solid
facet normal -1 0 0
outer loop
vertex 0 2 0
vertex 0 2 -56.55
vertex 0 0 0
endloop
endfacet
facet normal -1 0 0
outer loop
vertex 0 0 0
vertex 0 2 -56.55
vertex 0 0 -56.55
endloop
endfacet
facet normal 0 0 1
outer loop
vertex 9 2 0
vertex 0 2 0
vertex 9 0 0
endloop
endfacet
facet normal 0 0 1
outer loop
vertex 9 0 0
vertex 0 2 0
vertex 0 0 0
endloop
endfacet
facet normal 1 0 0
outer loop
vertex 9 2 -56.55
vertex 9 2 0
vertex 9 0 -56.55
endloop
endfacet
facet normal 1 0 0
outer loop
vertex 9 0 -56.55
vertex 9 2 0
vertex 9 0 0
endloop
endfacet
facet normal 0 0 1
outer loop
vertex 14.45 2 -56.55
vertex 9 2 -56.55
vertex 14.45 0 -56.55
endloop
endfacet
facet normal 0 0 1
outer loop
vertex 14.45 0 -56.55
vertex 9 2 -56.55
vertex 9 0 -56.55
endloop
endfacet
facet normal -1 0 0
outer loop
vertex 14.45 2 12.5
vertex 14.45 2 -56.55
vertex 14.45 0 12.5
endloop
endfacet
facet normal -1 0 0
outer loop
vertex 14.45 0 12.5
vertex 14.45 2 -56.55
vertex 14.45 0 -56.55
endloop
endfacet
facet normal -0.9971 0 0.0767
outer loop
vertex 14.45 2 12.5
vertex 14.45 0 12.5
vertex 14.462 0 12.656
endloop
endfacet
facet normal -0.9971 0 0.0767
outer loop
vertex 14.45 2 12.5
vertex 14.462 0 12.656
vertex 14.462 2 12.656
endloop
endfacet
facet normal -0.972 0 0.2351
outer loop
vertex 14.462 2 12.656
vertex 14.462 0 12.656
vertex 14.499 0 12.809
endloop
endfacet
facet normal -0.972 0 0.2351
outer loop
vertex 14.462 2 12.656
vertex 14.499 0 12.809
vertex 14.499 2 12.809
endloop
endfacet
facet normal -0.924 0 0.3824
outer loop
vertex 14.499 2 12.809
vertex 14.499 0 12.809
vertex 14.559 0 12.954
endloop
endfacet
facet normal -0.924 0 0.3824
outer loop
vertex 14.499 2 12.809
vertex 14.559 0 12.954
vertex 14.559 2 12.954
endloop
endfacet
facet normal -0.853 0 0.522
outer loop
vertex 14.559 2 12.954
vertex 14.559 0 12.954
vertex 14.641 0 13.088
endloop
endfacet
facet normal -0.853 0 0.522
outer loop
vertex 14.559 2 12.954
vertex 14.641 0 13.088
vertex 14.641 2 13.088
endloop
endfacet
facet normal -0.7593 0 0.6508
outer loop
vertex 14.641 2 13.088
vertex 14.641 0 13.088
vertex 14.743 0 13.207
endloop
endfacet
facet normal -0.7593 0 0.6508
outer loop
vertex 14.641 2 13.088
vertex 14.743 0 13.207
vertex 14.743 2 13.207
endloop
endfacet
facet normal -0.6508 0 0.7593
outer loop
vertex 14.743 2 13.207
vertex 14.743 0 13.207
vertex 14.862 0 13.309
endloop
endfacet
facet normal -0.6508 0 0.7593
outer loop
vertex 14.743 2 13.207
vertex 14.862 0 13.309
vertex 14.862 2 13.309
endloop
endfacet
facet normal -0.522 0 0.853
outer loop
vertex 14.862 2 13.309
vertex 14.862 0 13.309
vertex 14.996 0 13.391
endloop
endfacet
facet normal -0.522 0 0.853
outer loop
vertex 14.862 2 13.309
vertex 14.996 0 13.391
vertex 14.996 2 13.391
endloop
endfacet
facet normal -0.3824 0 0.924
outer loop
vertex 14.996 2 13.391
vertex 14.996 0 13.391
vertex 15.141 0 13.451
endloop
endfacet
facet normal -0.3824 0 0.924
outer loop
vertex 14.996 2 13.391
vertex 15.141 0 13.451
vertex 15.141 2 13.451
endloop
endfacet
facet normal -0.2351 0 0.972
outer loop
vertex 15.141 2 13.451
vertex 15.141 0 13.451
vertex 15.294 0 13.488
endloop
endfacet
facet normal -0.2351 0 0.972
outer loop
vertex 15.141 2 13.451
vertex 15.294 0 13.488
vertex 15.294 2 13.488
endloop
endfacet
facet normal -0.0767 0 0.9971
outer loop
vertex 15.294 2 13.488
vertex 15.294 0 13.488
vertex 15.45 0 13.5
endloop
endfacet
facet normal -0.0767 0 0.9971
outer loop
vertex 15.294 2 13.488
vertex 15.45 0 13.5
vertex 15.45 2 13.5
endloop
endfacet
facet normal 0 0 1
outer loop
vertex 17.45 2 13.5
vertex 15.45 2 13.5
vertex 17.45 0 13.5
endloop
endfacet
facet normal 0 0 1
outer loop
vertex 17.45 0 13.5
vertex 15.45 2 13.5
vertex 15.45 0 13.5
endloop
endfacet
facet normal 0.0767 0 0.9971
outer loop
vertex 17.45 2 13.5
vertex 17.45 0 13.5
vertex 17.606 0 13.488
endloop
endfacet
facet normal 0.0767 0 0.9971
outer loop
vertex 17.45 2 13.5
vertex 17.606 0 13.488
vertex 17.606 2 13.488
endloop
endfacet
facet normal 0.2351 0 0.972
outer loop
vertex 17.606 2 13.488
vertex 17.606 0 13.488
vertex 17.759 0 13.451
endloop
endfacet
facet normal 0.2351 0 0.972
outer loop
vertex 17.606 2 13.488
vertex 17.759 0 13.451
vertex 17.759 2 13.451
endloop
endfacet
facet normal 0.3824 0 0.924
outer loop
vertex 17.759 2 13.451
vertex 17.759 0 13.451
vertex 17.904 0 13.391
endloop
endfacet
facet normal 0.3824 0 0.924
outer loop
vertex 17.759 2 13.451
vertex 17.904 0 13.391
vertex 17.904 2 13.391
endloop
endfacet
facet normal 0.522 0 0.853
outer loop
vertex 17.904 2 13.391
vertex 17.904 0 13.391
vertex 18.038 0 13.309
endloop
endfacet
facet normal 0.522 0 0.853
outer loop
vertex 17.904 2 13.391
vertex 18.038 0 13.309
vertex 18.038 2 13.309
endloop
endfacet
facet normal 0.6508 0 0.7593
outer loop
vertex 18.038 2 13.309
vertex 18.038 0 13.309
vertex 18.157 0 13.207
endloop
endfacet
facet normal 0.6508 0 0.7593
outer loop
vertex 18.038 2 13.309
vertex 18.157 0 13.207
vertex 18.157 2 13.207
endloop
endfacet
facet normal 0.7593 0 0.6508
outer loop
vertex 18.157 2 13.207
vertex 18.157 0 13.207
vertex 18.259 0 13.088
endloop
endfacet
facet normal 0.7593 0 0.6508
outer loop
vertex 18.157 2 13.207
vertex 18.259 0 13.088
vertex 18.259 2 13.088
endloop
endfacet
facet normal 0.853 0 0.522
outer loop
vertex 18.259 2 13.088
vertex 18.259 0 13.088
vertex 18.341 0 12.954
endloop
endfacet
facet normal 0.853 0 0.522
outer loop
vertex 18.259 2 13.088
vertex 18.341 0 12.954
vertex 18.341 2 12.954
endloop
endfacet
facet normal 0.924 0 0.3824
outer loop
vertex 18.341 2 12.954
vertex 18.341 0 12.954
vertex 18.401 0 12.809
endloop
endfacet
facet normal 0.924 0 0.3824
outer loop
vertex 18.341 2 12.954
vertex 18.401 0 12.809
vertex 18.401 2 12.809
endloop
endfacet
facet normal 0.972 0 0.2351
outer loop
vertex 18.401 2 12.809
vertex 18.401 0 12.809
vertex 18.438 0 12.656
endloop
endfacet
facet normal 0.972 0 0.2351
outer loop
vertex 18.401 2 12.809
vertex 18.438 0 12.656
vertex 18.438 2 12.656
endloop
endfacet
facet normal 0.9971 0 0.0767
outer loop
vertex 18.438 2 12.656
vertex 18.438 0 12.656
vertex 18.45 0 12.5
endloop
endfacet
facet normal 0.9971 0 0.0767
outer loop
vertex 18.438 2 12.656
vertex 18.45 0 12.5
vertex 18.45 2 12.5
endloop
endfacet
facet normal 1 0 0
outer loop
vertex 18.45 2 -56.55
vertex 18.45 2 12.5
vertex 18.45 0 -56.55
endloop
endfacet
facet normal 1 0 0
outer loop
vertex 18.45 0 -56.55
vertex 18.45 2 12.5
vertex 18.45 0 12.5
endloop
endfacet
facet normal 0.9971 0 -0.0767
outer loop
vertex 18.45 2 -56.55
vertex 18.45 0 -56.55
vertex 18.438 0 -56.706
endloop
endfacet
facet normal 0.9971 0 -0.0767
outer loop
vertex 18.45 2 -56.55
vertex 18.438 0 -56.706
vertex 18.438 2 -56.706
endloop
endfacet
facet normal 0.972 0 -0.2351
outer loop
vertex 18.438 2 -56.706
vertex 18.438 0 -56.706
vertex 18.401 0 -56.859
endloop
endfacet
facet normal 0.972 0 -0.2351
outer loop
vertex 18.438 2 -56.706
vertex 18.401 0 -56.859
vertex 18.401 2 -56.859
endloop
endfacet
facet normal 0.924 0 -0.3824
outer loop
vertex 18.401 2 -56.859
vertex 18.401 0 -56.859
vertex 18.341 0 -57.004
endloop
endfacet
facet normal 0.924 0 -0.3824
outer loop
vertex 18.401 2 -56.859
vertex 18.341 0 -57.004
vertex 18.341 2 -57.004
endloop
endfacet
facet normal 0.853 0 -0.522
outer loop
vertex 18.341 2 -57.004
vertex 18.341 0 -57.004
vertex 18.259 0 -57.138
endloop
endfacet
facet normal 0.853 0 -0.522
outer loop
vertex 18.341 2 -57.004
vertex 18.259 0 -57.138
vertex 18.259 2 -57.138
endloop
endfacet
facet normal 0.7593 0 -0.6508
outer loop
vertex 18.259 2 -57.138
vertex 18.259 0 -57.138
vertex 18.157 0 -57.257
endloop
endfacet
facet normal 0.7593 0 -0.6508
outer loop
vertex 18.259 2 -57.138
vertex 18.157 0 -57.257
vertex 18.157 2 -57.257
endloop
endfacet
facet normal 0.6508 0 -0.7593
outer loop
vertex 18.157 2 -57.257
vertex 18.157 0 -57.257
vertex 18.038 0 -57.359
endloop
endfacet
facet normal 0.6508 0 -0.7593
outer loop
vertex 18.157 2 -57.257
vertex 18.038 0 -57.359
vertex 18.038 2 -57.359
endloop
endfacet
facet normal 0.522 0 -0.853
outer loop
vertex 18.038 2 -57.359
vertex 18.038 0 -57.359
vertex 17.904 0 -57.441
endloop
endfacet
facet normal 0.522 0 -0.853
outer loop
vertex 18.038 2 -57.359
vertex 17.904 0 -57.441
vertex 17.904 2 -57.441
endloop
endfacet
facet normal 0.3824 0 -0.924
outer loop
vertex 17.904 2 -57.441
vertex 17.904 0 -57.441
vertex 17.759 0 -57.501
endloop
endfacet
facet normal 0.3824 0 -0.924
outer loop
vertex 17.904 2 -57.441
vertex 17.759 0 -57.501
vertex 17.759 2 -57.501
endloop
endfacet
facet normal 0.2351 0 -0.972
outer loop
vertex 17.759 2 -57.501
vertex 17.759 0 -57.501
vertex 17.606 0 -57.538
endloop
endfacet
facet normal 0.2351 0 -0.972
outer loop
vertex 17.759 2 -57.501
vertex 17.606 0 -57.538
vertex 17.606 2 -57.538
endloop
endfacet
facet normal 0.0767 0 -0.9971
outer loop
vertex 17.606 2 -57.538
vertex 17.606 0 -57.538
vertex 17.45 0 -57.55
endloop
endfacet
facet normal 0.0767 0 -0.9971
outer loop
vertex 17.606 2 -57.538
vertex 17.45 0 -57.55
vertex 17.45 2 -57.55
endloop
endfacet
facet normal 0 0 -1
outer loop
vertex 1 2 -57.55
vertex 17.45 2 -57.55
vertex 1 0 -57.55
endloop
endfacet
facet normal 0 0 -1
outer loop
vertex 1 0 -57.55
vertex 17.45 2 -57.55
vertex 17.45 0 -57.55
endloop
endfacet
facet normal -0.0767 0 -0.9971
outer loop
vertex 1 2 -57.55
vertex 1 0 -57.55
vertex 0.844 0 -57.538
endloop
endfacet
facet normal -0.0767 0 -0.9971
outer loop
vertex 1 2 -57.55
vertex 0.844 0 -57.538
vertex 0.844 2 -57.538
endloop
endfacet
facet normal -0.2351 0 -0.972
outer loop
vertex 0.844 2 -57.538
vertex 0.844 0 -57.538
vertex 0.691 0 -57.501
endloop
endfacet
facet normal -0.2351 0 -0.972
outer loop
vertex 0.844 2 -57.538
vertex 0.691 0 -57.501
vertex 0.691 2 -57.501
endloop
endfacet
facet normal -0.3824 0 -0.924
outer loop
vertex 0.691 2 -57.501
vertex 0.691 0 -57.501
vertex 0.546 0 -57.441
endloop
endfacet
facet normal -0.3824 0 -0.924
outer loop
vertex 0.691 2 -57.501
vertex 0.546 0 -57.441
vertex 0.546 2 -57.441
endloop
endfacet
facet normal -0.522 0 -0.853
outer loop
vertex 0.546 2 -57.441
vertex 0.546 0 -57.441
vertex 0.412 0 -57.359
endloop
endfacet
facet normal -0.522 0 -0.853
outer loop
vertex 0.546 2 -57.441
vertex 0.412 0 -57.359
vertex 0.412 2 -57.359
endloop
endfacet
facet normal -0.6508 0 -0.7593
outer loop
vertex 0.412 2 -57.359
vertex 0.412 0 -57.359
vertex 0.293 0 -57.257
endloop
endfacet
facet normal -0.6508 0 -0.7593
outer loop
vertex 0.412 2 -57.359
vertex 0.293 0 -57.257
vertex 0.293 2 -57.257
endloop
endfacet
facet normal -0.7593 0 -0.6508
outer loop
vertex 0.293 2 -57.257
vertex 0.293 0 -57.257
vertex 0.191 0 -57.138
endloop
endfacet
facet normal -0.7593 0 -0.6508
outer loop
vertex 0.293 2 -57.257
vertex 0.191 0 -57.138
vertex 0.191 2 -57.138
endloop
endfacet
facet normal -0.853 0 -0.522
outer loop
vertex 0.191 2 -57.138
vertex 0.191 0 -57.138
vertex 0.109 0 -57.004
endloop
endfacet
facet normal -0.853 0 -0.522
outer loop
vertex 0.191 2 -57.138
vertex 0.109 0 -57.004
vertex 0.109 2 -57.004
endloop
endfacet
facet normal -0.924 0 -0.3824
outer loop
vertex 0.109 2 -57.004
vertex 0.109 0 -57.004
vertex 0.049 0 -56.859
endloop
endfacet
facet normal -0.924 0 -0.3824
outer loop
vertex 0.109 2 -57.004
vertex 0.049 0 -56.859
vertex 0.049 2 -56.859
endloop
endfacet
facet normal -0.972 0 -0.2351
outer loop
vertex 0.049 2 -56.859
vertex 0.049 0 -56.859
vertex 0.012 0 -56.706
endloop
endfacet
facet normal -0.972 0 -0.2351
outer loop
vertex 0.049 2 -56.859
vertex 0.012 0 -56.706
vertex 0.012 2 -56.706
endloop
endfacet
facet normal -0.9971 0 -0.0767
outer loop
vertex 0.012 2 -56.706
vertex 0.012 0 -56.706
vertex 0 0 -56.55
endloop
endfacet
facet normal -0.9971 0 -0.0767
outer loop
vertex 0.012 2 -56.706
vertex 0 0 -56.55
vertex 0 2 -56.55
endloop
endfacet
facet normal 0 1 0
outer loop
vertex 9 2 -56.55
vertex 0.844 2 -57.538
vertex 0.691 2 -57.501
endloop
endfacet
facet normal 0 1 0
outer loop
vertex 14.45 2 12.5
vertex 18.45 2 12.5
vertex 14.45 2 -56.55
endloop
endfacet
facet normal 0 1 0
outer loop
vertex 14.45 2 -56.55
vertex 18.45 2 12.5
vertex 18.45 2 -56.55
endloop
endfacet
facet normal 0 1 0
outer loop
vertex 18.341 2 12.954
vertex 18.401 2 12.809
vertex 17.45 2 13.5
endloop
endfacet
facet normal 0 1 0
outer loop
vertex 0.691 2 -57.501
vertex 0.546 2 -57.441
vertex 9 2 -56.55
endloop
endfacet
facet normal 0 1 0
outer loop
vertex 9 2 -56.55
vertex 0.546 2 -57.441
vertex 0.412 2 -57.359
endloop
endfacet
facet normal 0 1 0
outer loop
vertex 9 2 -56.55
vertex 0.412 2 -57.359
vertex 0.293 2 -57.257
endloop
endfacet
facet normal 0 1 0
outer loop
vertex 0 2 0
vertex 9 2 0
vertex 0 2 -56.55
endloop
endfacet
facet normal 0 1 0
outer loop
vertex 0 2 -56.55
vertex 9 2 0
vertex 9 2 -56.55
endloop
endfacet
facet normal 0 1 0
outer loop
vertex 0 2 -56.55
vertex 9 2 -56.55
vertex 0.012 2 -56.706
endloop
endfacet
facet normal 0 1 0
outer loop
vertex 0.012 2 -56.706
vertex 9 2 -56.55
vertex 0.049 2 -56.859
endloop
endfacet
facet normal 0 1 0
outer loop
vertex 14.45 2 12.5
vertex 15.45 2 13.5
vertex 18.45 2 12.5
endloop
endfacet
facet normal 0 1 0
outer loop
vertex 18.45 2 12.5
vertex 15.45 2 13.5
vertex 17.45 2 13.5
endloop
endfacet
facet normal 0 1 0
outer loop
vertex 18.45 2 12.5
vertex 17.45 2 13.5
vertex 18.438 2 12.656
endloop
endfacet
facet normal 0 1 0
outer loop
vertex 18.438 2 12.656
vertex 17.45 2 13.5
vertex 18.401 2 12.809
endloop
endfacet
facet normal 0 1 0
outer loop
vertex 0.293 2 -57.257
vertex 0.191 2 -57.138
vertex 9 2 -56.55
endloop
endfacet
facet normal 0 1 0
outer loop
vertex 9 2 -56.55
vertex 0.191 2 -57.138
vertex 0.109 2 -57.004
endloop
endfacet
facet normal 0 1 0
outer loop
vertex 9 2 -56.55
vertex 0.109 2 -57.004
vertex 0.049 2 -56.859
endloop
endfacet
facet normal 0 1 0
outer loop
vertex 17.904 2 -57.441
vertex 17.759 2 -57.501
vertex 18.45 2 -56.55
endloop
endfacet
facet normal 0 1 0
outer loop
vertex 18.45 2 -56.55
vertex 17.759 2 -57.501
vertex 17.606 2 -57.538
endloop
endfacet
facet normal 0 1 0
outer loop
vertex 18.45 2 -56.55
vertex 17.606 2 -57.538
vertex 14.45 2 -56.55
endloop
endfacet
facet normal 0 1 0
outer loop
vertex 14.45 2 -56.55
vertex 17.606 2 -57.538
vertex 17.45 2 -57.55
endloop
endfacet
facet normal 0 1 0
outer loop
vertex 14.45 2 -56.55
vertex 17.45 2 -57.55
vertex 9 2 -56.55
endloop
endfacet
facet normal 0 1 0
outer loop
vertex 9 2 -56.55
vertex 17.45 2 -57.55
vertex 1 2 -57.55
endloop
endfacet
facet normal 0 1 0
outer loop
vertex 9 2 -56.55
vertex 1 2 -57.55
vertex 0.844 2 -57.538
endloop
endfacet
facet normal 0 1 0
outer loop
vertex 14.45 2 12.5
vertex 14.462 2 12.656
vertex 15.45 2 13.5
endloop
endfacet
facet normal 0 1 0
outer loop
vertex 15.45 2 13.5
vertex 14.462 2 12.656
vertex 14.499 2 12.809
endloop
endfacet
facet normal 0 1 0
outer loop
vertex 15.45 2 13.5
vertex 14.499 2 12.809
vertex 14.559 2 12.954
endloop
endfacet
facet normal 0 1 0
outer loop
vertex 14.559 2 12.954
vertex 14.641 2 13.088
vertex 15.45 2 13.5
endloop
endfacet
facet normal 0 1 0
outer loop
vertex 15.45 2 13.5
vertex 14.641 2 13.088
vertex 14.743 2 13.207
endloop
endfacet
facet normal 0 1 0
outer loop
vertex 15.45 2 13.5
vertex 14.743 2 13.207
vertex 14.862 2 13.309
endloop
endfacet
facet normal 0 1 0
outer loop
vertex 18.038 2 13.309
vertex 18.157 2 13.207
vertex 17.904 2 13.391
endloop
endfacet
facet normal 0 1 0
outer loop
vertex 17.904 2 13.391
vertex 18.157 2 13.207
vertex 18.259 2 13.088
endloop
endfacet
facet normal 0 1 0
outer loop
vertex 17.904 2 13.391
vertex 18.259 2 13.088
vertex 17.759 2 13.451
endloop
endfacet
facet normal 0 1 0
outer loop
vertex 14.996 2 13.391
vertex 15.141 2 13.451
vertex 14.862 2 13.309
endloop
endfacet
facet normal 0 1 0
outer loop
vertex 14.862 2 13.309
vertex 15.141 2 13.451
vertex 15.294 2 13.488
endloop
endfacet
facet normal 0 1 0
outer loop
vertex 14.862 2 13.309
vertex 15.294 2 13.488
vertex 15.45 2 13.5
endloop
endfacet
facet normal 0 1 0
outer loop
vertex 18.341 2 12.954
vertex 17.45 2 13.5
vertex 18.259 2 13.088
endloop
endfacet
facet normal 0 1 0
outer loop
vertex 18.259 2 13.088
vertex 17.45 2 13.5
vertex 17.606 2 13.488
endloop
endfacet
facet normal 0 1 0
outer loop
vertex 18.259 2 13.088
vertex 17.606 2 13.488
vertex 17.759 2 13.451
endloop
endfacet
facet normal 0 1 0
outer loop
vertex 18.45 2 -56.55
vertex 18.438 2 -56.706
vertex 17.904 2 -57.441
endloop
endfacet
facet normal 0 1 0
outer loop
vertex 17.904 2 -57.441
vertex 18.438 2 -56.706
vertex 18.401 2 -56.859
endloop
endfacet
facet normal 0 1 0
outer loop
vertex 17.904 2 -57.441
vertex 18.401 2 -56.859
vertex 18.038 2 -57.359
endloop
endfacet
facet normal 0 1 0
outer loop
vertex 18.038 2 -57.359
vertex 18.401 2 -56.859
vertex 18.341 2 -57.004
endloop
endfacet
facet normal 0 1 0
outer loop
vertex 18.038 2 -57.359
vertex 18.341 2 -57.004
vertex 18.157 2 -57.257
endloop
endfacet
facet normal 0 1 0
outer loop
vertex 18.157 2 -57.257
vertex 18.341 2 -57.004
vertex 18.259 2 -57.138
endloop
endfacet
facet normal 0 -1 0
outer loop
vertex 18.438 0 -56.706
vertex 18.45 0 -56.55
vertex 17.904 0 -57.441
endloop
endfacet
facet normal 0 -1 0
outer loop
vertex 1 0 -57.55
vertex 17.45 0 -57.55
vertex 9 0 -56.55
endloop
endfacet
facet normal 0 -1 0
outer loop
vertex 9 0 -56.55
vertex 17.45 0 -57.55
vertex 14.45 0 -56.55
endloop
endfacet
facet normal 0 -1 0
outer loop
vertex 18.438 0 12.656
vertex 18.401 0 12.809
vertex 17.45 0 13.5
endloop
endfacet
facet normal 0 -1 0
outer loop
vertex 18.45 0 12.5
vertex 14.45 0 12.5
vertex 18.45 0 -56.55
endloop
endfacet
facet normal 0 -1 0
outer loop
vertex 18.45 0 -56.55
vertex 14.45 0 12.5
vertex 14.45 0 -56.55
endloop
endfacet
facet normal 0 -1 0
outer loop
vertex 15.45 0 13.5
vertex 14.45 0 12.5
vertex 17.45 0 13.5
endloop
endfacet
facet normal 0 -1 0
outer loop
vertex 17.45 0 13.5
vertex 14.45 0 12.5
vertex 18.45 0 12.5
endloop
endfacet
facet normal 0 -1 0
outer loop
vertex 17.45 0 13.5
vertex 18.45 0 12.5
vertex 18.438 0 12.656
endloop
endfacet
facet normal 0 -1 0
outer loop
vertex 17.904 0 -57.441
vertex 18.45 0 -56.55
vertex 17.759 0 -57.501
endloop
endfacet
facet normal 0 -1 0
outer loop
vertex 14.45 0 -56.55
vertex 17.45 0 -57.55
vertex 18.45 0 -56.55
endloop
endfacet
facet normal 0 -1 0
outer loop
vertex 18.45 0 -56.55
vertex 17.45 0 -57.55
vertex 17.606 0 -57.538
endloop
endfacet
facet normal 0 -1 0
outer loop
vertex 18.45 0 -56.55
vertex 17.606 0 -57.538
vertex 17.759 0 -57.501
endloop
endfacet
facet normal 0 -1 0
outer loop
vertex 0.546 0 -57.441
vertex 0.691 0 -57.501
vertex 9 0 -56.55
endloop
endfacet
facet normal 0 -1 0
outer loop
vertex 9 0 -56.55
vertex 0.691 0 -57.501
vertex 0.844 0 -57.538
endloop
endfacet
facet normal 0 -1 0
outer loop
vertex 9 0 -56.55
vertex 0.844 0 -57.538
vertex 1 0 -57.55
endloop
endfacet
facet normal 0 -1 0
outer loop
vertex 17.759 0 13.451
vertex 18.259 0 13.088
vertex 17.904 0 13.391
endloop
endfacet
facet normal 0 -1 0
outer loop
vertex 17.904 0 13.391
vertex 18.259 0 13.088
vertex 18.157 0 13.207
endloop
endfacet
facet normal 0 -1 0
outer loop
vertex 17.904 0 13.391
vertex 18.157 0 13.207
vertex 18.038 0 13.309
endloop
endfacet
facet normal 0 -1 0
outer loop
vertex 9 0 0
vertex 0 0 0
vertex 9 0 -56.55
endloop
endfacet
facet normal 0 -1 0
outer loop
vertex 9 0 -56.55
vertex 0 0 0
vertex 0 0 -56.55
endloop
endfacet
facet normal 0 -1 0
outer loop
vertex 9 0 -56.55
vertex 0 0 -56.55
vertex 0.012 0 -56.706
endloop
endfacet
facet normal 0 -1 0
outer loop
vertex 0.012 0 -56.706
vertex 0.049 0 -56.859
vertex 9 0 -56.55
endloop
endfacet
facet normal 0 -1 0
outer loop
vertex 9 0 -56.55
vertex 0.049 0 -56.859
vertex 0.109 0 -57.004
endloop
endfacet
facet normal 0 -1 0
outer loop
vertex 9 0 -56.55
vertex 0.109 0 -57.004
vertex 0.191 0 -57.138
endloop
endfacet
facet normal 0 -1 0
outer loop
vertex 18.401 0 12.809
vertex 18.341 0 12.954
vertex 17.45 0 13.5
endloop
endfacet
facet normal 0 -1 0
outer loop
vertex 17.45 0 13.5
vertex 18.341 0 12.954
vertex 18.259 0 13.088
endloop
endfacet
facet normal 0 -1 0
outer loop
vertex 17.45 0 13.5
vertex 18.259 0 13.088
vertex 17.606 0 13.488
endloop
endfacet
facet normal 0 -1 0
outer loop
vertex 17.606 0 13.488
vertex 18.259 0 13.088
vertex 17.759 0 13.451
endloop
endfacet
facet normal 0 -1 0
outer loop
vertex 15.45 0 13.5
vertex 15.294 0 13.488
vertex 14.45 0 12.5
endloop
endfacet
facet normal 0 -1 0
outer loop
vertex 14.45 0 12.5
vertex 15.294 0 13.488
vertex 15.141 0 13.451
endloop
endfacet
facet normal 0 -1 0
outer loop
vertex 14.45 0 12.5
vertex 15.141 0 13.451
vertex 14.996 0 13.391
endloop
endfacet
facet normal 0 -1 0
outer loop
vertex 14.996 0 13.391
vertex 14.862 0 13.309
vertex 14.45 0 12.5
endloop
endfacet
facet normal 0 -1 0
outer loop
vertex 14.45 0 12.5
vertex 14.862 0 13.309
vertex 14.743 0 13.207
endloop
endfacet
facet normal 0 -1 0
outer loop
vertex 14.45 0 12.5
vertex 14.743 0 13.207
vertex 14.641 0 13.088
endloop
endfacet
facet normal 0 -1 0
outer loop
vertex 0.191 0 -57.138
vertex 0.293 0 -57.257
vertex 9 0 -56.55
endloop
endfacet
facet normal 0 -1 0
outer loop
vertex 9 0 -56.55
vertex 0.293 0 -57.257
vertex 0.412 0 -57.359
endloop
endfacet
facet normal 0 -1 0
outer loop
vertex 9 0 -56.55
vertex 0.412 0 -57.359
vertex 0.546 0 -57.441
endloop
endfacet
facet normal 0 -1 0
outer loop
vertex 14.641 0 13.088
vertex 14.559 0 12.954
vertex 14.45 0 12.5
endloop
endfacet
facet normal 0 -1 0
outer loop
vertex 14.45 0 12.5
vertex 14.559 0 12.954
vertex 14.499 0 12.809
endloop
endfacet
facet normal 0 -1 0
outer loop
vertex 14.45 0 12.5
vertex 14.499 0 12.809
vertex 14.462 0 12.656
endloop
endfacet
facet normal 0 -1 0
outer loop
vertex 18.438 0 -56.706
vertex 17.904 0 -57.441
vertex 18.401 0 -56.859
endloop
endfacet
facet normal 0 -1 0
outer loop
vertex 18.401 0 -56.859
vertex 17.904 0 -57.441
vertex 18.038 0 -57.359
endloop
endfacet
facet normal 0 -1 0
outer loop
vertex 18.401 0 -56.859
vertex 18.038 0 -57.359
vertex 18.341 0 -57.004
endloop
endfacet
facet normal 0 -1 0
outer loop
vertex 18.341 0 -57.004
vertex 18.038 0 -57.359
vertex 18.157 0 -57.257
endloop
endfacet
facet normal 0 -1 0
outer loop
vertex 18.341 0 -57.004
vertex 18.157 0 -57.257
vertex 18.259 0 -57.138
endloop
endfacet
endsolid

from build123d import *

# Parameters (mm, degrees)
EXTRUDE_1_DEPTH = 2


with BuildPart() as part:
    # ｽｹｯﾁ2 → ﾎﾞｽ - 押し出し1 (new body)
    with BuildSketch(Plane(origin=(0, 0, 0), x_dir=(1, 0, 0), z_dir=(0, 1, 0))):
        with BuildLine():
            Line((0, 0), (9, 0))
            Line((9, 0), (9, 56.55))
            Line((9, 56.55), (14.45, 56.55))
            Line((14.45, 56.55), (14.45, -12.5))
            ThreePointArc((14.45, -12.5), (14.742893219, -13.207106781), (15.45, -13.5))
            Line((15.45, -13.5), (17.45, -13.5))
            ThreePointArc((17.45, -13.5), (18.157106781, -13.207106781), (18.45, -12.5))
            Line((18.45, -12.5), (18.45, 56.55))
            ThreePointArc((18.45, 56.55), (18.157106781, 57.257106781), (17.45, 57.55))
            Line((17.45, 57.55), (1, 57.55))
            ThreePointArc((1, 57.55), (0.292893219, 57.257106781), (0, 56.55))
            Line((0, 56.55), (0, 0))
        make_face()
    extrude(amount=EXTRUDE_1_DEPTH)


solid = part.part
